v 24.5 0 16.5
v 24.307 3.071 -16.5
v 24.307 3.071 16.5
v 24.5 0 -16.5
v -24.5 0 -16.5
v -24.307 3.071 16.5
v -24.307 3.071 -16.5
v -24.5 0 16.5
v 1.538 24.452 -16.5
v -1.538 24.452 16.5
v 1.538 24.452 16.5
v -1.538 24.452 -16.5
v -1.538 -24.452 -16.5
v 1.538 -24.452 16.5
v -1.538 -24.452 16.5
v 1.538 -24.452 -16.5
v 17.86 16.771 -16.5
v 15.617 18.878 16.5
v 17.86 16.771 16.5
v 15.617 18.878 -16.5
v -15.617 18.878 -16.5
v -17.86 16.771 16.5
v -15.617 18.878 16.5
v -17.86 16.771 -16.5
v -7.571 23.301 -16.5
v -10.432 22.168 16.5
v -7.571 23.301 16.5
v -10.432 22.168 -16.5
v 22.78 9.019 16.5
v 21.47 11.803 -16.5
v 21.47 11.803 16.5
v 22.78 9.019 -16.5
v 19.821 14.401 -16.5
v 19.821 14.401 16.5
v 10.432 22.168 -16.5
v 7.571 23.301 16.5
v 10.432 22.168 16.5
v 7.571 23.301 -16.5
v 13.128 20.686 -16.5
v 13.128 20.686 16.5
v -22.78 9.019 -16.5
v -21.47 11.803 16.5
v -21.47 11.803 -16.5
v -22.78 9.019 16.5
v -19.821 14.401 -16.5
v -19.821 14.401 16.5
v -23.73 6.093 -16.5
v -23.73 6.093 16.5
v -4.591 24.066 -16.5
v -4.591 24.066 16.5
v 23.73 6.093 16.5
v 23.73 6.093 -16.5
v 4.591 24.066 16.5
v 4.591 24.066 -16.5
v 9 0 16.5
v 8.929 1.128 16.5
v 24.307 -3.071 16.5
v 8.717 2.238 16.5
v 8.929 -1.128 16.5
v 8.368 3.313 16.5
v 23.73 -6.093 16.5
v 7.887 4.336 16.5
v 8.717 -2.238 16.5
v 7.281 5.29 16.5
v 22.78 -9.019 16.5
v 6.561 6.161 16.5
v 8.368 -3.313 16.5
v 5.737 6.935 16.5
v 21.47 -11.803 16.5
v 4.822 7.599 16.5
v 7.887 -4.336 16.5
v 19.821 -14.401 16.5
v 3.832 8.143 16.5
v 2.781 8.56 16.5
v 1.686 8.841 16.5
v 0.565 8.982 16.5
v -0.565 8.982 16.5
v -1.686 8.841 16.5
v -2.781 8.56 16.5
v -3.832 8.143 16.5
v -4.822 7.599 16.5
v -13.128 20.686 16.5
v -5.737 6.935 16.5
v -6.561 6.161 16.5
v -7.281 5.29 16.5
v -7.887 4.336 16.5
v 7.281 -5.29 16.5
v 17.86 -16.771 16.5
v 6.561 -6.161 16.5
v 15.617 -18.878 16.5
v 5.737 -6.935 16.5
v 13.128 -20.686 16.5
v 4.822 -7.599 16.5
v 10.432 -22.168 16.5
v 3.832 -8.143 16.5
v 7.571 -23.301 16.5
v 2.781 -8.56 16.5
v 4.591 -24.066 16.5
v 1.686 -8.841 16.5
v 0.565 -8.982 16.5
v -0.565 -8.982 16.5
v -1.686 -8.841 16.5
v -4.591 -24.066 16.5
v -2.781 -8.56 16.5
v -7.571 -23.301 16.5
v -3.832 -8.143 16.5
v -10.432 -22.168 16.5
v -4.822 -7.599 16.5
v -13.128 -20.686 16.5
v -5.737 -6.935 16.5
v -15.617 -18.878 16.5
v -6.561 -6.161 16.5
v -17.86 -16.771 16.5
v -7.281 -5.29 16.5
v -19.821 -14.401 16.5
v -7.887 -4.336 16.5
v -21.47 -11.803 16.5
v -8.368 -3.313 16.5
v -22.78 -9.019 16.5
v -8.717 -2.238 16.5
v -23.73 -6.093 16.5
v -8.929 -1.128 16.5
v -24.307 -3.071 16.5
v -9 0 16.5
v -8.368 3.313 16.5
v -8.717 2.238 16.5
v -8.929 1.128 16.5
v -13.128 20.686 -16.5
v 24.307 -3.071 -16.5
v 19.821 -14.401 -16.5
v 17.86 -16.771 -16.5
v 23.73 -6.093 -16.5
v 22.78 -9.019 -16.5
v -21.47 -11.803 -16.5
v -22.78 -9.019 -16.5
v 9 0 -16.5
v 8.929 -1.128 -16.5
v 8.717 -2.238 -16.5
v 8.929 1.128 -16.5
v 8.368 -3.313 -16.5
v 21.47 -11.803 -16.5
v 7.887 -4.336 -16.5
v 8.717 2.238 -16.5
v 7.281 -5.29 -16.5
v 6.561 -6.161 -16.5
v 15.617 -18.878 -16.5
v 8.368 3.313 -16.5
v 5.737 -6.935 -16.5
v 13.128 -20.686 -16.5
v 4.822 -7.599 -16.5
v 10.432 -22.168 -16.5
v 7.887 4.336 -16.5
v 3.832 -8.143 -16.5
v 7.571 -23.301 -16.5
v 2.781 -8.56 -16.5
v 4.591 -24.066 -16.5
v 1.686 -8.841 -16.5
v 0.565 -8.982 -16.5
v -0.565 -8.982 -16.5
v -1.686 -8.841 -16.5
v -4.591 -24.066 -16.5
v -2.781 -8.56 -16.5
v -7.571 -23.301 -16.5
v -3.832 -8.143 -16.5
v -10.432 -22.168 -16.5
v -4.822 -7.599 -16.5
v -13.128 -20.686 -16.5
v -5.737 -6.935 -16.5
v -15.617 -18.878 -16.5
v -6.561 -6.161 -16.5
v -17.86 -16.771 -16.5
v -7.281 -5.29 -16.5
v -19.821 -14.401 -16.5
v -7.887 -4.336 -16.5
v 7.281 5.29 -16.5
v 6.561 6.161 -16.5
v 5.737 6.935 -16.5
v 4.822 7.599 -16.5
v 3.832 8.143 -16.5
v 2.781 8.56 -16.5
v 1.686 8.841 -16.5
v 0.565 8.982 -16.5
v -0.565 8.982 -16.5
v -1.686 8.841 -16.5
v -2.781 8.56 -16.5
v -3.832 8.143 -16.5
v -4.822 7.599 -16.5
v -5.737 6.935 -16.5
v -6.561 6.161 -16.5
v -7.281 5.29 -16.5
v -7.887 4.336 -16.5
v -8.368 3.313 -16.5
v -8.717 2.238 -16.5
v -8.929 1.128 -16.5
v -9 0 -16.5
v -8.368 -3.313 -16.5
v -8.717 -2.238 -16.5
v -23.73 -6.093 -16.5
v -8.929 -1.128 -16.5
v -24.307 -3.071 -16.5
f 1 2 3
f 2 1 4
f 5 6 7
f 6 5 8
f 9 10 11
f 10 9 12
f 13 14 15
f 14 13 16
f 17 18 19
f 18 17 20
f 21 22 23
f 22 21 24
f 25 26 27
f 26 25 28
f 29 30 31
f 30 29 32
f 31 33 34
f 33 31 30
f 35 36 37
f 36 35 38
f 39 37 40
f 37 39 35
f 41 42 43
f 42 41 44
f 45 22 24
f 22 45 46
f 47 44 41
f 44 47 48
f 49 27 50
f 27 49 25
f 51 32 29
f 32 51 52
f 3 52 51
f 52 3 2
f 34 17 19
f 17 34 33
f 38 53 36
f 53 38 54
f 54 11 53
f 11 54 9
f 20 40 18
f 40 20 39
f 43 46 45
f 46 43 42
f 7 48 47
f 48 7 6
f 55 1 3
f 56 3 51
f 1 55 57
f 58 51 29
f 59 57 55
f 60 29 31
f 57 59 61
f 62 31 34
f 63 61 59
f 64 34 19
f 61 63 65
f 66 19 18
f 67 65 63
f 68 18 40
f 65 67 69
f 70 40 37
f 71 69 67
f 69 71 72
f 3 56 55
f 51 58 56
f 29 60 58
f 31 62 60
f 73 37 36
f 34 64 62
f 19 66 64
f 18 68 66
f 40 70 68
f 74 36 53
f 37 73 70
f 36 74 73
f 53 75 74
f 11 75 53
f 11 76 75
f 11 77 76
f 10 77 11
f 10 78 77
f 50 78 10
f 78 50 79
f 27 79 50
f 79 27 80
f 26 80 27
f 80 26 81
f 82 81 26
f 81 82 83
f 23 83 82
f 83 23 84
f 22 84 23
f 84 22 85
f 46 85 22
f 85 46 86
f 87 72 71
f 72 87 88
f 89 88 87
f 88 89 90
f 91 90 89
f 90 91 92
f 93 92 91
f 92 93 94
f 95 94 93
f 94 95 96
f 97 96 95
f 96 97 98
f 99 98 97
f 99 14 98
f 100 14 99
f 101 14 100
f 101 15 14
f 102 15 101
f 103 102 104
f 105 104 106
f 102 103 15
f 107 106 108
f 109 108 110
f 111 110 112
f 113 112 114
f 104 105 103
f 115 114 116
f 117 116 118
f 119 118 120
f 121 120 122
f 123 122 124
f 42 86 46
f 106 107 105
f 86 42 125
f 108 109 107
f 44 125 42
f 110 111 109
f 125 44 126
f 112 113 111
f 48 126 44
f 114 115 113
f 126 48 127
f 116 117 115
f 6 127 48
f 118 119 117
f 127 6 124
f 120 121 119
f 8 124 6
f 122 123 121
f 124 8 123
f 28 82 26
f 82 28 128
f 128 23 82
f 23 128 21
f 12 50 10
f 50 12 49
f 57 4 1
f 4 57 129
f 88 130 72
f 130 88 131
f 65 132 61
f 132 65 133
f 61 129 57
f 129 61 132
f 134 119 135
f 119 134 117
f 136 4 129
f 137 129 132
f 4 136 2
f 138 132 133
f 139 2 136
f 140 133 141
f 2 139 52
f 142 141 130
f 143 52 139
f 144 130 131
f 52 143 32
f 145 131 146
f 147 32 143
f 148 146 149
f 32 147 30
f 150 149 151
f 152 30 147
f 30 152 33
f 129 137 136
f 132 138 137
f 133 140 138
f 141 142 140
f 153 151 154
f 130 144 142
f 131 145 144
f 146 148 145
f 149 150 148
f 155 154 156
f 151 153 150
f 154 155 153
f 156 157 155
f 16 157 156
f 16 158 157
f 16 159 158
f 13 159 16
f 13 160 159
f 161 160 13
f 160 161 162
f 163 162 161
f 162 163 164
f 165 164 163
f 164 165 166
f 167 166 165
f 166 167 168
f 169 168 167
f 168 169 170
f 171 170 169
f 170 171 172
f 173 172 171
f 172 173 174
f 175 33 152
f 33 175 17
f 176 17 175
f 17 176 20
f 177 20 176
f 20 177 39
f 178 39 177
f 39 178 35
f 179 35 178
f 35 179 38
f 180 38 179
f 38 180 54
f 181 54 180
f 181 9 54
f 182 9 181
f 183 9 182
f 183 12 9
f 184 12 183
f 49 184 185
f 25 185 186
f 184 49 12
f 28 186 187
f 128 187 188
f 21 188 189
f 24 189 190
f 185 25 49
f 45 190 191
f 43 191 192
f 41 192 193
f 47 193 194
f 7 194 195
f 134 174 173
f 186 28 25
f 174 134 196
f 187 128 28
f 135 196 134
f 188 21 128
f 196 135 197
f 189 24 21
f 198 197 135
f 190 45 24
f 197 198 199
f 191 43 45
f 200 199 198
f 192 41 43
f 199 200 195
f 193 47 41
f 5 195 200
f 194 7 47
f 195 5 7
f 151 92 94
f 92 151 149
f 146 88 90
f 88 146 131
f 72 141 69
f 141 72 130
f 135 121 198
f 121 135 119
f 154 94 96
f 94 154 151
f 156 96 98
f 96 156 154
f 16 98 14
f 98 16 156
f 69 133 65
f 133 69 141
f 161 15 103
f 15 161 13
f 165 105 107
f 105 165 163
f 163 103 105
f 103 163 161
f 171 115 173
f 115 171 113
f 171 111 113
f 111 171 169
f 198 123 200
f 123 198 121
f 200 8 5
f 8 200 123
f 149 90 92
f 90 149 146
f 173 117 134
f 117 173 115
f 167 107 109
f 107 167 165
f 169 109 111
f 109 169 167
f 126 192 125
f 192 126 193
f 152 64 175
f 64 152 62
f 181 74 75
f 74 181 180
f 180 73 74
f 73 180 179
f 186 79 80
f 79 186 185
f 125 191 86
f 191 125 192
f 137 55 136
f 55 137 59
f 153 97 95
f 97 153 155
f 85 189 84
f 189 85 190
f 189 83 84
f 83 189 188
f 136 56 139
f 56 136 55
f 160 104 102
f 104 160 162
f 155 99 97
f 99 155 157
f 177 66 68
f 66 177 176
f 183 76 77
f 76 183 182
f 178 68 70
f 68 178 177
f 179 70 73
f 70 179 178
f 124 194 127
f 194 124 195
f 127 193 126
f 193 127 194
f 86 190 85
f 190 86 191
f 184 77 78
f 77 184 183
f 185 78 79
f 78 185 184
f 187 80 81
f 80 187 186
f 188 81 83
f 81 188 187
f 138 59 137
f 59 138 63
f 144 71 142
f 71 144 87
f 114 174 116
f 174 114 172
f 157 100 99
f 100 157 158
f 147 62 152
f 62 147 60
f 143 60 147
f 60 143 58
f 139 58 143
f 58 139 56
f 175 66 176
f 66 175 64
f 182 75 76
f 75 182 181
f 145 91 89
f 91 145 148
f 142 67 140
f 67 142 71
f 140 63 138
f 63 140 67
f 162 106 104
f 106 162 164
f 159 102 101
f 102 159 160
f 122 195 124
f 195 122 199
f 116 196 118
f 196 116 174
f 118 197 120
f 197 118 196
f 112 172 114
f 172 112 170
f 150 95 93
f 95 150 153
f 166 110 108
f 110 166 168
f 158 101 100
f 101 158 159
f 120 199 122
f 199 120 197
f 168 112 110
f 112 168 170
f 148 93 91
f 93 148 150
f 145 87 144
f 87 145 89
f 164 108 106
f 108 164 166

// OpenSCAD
$fn = 50;


difference() {
	union() {
		translate(v = [0, 0, -16.5000000000]) {
			cylinder(h = 33, r = 24.5000000000);
		}
	}
	union() {
		translate(v = [0, 0, -100.0000000000]) {
			cylinder(h = 200, r = 9);
		}
	}
}
